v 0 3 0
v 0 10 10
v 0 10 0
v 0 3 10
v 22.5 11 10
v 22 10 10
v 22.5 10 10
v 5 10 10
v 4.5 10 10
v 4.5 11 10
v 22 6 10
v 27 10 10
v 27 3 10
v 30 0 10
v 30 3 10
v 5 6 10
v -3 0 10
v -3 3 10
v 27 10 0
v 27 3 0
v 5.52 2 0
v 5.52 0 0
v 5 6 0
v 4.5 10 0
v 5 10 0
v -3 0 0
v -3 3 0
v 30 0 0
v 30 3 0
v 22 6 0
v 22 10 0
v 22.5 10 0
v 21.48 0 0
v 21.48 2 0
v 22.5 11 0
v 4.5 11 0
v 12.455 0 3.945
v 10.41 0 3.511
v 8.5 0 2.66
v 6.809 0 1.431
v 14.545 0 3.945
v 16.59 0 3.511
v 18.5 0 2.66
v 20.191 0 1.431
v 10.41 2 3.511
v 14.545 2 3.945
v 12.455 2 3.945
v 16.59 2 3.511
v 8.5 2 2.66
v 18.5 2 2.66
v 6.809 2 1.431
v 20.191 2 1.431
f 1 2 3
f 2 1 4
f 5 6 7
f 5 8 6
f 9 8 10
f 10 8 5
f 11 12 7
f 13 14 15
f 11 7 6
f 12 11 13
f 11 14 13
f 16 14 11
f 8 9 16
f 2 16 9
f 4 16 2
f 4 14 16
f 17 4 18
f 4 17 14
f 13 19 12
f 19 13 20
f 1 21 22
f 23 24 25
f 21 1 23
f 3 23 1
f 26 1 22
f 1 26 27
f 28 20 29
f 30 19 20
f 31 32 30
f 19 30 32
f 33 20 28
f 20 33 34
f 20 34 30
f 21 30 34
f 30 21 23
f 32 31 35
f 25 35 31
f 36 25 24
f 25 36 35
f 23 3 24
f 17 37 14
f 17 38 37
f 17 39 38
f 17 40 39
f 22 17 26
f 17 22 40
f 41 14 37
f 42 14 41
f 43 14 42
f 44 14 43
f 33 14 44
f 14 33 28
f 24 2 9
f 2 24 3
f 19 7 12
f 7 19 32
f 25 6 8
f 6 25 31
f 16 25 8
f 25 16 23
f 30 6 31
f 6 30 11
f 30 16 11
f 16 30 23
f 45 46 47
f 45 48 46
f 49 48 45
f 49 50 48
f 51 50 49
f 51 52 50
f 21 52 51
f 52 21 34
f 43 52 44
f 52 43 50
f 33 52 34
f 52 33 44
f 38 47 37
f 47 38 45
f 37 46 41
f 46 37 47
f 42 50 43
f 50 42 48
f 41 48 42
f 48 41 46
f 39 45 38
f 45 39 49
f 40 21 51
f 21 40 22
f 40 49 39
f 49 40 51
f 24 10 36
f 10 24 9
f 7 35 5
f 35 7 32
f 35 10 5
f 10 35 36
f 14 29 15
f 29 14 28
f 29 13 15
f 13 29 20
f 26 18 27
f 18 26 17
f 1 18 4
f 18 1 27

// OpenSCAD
// main
difference() {
    cube([27,  10, 10]);
    // middle hole
     translate([5, 6, 0]) cube([17, 4, 10]);
    // finger hole
    translate([13.5, 2, - 6]) rotate([90, 0, 0]) cylinder(2, r=10);
}

// top
translate([4.5, 10, 0]) cube([18, 1, 10]);

//right
translate([27, 0, 0]) cube([3, 3, 10]);

//left
translate([-3, 0, 0]) cube([3, 3, 10]);
